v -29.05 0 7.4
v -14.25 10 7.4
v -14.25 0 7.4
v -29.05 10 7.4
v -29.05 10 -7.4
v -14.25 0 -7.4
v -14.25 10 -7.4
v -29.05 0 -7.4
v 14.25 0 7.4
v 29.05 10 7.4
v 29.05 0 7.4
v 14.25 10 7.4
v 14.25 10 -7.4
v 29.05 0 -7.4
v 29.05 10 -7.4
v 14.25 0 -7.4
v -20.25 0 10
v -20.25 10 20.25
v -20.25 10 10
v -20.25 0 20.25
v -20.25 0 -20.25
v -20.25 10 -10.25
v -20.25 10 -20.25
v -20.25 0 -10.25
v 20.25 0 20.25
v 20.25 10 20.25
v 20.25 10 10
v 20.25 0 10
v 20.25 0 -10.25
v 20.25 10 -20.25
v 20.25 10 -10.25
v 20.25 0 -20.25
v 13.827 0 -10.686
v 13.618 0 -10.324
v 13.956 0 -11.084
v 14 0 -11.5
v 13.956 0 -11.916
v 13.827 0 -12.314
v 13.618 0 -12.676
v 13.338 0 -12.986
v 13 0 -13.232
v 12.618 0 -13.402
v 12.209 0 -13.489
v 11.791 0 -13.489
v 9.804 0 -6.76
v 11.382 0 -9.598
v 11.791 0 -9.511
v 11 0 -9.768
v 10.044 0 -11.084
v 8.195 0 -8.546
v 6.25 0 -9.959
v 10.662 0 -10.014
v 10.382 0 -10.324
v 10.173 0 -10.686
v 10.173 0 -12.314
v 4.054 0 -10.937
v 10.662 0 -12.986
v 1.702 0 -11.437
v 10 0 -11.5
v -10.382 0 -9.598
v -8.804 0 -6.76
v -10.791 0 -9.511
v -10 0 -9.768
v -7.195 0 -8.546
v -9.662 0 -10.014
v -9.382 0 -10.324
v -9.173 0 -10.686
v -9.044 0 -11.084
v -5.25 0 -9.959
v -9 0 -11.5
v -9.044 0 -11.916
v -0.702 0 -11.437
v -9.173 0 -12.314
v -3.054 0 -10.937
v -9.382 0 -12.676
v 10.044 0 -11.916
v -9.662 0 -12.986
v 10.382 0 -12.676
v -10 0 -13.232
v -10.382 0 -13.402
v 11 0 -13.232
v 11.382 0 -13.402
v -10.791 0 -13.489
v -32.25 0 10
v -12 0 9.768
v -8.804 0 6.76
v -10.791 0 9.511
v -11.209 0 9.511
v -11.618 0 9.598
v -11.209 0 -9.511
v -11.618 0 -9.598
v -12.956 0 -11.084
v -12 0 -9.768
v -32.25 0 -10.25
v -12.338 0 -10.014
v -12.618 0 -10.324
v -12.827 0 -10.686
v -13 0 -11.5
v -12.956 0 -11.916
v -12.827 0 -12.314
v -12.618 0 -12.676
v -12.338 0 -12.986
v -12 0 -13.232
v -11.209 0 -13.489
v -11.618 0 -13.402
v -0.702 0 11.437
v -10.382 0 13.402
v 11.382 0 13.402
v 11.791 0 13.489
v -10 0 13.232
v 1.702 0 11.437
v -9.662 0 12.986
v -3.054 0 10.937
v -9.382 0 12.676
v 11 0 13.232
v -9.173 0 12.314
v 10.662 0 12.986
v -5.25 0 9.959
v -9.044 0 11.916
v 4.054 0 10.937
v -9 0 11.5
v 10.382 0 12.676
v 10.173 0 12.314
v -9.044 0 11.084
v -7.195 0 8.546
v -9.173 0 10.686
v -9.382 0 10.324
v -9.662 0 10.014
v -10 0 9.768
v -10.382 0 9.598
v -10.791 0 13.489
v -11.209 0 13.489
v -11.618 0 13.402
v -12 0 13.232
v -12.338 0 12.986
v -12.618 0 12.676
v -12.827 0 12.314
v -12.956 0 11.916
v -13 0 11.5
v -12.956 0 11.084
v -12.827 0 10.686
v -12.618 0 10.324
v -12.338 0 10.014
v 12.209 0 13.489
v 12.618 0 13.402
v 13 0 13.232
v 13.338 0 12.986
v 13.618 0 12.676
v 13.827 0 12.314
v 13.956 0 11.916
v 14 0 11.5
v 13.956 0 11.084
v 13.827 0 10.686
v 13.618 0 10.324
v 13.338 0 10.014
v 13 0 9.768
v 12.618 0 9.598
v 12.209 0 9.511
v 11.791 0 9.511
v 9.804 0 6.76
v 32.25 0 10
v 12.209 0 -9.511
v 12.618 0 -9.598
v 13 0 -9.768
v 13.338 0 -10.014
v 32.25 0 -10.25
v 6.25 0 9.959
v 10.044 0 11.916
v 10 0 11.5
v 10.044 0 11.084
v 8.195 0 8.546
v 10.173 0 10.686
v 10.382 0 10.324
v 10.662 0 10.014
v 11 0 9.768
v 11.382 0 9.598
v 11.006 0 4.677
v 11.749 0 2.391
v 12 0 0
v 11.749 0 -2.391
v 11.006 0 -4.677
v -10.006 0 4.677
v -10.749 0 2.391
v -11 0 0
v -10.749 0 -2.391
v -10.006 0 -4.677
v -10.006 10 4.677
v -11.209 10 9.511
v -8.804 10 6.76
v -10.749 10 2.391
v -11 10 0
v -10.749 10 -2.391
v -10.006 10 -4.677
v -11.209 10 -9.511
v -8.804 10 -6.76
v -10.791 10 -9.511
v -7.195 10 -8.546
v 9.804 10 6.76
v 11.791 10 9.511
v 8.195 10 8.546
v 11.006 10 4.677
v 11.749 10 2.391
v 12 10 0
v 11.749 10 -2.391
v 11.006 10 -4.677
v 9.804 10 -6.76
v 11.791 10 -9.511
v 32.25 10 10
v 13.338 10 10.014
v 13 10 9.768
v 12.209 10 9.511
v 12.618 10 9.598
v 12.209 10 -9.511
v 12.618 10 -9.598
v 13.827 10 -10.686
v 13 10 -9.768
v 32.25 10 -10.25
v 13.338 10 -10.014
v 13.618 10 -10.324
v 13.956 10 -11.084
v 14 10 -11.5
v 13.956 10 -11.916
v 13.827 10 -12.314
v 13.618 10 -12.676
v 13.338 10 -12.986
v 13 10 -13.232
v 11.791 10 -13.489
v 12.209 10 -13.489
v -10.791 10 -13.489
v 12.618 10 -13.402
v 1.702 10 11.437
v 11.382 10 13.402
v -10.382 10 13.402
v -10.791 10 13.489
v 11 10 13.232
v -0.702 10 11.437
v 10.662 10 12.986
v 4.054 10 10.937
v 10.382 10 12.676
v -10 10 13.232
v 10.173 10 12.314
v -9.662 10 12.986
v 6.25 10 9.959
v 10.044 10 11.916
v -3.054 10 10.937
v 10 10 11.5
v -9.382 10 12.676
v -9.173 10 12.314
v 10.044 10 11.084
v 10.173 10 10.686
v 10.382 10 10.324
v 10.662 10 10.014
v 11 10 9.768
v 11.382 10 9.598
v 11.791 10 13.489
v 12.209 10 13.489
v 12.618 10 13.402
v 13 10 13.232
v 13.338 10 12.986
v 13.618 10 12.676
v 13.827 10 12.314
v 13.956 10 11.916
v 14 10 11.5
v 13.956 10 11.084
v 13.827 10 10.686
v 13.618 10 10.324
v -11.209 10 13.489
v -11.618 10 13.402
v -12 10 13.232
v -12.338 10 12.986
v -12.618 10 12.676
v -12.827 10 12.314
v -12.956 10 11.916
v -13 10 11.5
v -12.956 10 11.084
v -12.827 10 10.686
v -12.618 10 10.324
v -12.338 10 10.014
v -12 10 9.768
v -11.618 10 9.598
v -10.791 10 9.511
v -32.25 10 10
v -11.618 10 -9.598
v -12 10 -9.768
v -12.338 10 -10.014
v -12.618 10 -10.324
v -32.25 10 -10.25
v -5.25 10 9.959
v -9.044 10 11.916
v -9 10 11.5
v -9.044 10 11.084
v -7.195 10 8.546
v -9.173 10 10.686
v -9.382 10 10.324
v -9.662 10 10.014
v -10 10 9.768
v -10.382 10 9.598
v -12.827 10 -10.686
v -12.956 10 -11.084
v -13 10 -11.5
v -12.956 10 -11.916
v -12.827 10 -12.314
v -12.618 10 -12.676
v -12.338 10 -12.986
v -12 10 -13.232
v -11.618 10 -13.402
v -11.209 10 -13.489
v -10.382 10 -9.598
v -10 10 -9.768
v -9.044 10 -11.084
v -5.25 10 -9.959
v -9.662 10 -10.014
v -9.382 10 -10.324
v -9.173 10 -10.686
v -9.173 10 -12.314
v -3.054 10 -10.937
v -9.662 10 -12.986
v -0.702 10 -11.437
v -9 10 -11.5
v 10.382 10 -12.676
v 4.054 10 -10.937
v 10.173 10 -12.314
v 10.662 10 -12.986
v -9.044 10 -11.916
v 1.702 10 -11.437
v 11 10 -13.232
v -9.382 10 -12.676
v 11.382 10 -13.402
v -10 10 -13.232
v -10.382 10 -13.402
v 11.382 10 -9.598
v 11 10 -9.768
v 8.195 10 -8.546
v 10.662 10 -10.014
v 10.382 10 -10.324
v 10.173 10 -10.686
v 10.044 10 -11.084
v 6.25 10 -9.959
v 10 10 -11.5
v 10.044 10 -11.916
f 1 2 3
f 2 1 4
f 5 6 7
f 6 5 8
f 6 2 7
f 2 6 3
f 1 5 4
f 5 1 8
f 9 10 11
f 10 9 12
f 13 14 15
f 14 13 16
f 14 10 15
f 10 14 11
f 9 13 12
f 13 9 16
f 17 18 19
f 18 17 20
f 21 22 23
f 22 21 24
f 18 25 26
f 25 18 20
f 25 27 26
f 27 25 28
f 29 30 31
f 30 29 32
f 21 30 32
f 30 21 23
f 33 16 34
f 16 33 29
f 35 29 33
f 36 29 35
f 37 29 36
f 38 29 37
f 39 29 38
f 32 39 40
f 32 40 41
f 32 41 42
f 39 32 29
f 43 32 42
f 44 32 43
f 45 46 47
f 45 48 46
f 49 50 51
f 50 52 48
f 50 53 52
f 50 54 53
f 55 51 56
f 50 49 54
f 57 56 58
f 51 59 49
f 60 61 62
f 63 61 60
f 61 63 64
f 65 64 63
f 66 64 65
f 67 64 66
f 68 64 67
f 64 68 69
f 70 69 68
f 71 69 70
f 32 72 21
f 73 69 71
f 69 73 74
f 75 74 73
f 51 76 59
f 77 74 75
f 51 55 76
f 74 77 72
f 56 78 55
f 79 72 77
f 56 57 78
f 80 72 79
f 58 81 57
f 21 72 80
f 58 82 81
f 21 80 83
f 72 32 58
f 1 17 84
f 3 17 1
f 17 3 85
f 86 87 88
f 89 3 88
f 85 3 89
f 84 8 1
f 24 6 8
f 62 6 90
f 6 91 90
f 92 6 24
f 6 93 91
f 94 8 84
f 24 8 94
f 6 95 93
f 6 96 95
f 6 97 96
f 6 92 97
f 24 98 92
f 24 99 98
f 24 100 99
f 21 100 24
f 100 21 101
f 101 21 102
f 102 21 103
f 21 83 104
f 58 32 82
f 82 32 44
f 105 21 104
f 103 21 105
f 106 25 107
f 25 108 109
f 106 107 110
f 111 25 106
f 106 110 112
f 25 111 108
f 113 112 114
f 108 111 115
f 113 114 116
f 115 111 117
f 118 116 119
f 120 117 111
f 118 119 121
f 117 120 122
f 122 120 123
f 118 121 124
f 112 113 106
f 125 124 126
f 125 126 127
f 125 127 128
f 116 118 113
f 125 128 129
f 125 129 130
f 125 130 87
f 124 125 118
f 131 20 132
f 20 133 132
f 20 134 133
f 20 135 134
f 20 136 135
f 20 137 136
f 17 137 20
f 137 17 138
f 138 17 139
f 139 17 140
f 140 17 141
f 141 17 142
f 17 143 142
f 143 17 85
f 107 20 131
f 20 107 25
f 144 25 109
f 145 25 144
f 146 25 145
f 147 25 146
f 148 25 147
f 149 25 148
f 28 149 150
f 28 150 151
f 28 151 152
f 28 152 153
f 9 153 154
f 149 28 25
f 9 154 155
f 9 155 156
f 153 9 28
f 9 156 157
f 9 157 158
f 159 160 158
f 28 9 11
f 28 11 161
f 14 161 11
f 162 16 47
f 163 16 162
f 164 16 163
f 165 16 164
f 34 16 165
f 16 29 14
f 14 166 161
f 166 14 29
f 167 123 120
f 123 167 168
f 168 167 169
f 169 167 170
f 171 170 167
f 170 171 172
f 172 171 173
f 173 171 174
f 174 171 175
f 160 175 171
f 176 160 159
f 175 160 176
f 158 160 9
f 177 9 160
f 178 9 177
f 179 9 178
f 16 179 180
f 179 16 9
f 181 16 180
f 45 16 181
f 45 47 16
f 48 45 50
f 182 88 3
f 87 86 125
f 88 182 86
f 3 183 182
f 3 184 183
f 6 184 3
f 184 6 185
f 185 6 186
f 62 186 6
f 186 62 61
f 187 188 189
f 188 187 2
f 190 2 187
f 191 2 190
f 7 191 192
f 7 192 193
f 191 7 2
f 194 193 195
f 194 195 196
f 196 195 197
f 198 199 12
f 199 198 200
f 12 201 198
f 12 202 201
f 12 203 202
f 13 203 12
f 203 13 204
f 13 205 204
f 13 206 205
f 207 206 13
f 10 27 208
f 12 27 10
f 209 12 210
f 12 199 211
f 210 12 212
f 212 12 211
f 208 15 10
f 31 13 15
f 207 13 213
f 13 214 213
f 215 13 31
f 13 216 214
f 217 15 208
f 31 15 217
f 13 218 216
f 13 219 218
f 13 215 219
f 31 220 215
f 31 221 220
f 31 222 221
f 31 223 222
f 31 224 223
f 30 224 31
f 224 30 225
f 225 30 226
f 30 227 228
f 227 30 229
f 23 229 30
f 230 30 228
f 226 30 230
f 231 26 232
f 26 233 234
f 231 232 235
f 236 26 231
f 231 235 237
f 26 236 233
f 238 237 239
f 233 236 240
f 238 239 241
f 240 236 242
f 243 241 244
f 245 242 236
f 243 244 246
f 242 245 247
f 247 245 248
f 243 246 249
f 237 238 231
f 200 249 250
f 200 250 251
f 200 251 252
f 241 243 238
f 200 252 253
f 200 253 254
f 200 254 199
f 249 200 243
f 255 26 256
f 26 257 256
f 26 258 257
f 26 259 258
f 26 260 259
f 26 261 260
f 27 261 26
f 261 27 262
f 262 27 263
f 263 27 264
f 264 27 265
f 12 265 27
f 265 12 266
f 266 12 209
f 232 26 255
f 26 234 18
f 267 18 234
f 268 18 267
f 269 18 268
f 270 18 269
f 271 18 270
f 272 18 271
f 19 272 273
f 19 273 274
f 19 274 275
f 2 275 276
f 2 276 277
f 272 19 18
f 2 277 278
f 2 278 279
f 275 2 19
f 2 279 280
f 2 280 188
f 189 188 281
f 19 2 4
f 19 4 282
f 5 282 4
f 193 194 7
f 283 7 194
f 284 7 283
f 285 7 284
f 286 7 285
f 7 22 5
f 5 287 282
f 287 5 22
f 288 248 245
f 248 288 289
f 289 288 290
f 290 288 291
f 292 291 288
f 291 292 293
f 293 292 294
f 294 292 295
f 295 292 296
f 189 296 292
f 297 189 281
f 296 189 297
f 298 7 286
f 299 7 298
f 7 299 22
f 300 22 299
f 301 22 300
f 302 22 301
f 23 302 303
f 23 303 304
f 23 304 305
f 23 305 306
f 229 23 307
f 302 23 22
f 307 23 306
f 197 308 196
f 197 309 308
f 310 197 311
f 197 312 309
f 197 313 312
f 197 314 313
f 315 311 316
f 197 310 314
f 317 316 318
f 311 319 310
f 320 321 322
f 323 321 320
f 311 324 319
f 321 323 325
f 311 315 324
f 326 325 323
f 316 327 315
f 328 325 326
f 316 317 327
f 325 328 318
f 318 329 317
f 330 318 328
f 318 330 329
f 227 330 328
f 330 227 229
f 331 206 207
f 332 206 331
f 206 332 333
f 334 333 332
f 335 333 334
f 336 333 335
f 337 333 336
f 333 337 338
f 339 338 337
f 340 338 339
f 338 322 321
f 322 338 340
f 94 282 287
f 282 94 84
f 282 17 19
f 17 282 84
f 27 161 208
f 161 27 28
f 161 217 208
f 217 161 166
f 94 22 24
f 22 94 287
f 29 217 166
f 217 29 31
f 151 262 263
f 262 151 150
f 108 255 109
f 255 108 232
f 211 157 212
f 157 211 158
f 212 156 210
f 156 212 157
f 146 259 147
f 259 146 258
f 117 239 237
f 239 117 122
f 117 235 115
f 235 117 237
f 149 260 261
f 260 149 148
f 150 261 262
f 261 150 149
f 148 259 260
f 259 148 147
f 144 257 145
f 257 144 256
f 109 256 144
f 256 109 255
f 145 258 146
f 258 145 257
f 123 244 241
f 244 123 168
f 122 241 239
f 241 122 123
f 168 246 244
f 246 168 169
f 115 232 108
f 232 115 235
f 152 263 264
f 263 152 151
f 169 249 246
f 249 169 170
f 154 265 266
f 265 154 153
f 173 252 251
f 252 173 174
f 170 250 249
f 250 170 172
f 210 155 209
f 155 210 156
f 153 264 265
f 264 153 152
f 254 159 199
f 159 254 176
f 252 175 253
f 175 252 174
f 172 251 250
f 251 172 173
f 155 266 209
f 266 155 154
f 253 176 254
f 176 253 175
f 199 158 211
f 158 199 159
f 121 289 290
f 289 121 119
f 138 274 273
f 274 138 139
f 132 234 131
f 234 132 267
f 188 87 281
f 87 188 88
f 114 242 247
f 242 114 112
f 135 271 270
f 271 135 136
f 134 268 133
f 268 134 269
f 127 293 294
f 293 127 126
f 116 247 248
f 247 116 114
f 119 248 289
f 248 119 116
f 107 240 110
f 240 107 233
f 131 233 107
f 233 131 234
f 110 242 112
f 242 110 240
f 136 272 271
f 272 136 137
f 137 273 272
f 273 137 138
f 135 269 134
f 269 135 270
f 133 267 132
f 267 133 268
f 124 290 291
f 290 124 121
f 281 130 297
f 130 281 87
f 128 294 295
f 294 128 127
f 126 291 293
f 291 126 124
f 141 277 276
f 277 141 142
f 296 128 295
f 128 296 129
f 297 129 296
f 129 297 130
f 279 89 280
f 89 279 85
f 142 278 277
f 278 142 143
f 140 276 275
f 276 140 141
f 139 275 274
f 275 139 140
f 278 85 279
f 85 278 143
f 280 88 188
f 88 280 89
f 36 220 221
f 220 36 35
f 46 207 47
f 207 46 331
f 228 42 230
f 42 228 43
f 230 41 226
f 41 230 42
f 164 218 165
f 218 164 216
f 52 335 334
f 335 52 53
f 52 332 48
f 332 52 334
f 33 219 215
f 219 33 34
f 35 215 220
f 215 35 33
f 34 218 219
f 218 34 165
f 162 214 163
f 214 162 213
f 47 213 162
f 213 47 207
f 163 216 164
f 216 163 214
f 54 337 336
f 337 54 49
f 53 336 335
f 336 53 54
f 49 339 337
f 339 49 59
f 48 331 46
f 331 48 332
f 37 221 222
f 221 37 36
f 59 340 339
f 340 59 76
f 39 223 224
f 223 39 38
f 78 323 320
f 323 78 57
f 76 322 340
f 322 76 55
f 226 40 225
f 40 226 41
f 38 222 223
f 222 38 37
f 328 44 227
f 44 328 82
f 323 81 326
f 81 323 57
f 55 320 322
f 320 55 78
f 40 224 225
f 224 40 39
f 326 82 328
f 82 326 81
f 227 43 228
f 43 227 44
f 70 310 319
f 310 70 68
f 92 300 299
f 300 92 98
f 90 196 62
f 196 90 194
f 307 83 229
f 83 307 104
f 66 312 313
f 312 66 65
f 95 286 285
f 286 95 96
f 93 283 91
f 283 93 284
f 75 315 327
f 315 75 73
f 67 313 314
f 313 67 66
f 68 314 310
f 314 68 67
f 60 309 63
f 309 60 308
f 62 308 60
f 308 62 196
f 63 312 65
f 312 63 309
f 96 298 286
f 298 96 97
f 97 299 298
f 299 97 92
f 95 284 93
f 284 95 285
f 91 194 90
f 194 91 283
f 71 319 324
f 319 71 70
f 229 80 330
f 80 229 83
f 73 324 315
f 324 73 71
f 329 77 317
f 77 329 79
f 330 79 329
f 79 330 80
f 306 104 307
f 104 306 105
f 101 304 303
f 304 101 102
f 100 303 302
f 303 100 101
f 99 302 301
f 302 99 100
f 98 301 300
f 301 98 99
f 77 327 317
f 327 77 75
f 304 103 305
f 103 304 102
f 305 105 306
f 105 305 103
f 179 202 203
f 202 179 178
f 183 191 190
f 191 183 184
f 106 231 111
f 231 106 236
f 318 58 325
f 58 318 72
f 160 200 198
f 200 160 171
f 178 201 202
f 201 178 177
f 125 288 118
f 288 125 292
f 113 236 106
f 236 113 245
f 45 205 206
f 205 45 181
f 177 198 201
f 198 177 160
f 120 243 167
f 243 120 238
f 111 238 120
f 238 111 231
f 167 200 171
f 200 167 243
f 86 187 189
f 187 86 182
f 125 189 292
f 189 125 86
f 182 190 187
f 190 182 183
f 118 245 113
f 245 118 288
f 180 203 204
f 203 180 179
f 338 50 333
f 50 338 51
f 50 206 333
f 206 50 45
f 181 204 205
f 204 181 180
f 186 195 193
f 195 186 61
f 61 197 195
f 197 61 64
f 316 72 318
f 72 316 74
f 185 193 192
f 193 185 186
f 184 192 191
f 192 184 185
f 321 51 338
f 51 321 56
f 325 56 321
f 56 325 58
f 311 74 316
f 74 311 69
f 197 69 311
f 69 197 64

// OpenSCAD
// file: syringePumpConstants.scad
/* === Project-universal Constants === */

//Not all of these variables are used in this specific model,
//but the same variable set is used across all models in this project.

$fs = 0.1;

inch = 25.4; //for mm conversion

//width of base

// 8020 profile is 1 inch wide
//baseSizeY = 2*inch;
//screwPlateSize = 25;	
//screwRadius = 3.5;

// OpenBeam is 15mm wide
baseSizeY = 2*15;
screwPlateSize = 15;	
screwRadius = 1.5;

centerY = baseSizeY / 2; //both axes go right down the middle of the base

//stepper motor
stepperZSize = 42;
stepperYSize = 42;

//608 bearing 
bearing608Height = 8.5;
bearing608Diameter = 22.5;

//height of holder for 80/20 screws
mountPlateHeight = 5;

//axis heights
threadedAxisHeight = stepperZSize/2 + mountPlateHeight + 4;
echo("threadedAxisHeight ", threadedAxisHeight);
smoothAxisHeight = (threadedAxisHeight-6.6) / 2;
smoothRodRadius = 4.2;

//syringe properties
//barrelDiameter = 25;
//
//barrelSlotThickness = 3;
//barrelSlotHeight = 28;

// 20ml BD plastic disposable syringe REF 302830
barrelDiameter = 21.5;
barrelSlotThickness = 3;
barrelSlotHeight = 28;

syringeCenterHeight = threadedAxisHeight + bearing608Diameter/2 + 4 + barrelDiameter/2;

//fixes render oddities
floatCorrection = 0.001; 
floatCorrection2 = 2*floatCorrection; 

barrelDiameter = 21.4;
barrelSlotThickness = 3;
plungerTravel = 85;
extrusionThickness = 14.8;
wallThickness = 3;
barrelTabsMin = 24.5;
nemaWidth=28.5;
barrelTabsMax = 38.0;
barrelTabsThickness = 2.0;
//screwRadius=3.2;
screwRadius=3.875;
extrusionTabWidth=wallThickness*1.5;
// main file
include <syringePumpConstants.scad>

wall_thickness = 5;
//	motor_width = 42; // NEMA 17
motor_width = 28.5; // NEMA 11
frame_width = motor_width + (wall_thickness + 1)*2;
bolt = 4;
//height = 25;
height=0;
//	inch = 25.4;
//	screwPlateSize = 25;	
//	screwRadius = 3.25;

inch = 15;
screwPlateSize = 25;	
screwRadius = 1.5;

//these are all the mount point holes.
x1 = -wall_thickness;
y1 = wall_thickness*2;
x2 = frame_width+wall_thickness;
y2 = wall_thickness*2;
x3 = -wall_thickness;
y3 = frame_width-wall_thickness*2;
x4 = frame_width + wall_thickness;
y4 = frame_width-wall_thickness*2;

module fake_extrusion(){
    
    translate([wall_thickness+1,-50,-(extrusionThickness/2 +wall_thickness)])  //voodoo
    {
    rotate([0,0,90]){
        cube([100,extrusionThickness,extrusionThickness]);
    }
    }
    
    //translate([nemaWidth,-50,-(extrusionThickness/2 +wall_thickness)])  //centered
    translate([wall_thickness+nemaWidth+extrusionThickness+1,-55,-(extrusionThickness/2 +wall_thickness)])
    {
    rotate([0,0,90]){
        cube([100,extrusionThickness,extrusionThickness]);
    }
    }
}

translate([0,0,wall_thickness]){
nema_17_mount();
}
    module nema_17_mount()
    {
        //center the whole thing in X
        translate([-frame_width/2, 0, 0])
        {
            difference()
            {
                //build the main unit.
                //positive

                union()
                {
                    translate([0,0,-(frame_width+10)/2]){
                    //structure
                    //cube([wall_thickness, frame_width, frame_width]); //front face
                    cube([frame_width, 2*wall_thickness, frame_width]); //left face
                        translate([-12,0,10]){
                    cube([frame_width+24, 2*wall_thickness, frame_width/2]); //left face    
                        }
                    //translate([frame_width - wall_thickness, 0, 0])     //right face
                    //    cube([wall_thickness, frame_width, frame_width]);
                        

                }
                
                    
            }


//negative
            #fake_extrusion();
                //nema 11 mount
                rotate([90, 0, 0])
                {
                    translate([frame_width/2+0.5, height - 5, -wall_thickness])
                    {
                        translate([11.5, 11.5, -10])
                            cylinder(r=bolt/2, h=4*wall_thickness+1);
                        translate([-11.5, 11.5, -10])
                            cylinder(r=bolt/2, h=4*wall_thickness+1);
                        translate([11.5, -11.5, -10])
                            cylinder(r=bolt/2, h=4*wall_thickness+1);
                        translate([-11.5, -11.5, -10])
                            cylinder(r=bolt/2, h=4*wall_thickness+1);
                        translate([0, 0, -10])  //wtf? double voodoo
                        cylinder(r=11.5, h=4*wall_thickness+1);

   
                    }
                }

                //back slant cutaway
                translate([0, 0, frame_width+wall_thickness])
                    rotate([45, 0, 0])
                        translate([-frame_width, 0, -frame_width*2])
                            cube(size=[frame_width*4, frame_width*2, frame_width*4]);

            }
        }
    }
